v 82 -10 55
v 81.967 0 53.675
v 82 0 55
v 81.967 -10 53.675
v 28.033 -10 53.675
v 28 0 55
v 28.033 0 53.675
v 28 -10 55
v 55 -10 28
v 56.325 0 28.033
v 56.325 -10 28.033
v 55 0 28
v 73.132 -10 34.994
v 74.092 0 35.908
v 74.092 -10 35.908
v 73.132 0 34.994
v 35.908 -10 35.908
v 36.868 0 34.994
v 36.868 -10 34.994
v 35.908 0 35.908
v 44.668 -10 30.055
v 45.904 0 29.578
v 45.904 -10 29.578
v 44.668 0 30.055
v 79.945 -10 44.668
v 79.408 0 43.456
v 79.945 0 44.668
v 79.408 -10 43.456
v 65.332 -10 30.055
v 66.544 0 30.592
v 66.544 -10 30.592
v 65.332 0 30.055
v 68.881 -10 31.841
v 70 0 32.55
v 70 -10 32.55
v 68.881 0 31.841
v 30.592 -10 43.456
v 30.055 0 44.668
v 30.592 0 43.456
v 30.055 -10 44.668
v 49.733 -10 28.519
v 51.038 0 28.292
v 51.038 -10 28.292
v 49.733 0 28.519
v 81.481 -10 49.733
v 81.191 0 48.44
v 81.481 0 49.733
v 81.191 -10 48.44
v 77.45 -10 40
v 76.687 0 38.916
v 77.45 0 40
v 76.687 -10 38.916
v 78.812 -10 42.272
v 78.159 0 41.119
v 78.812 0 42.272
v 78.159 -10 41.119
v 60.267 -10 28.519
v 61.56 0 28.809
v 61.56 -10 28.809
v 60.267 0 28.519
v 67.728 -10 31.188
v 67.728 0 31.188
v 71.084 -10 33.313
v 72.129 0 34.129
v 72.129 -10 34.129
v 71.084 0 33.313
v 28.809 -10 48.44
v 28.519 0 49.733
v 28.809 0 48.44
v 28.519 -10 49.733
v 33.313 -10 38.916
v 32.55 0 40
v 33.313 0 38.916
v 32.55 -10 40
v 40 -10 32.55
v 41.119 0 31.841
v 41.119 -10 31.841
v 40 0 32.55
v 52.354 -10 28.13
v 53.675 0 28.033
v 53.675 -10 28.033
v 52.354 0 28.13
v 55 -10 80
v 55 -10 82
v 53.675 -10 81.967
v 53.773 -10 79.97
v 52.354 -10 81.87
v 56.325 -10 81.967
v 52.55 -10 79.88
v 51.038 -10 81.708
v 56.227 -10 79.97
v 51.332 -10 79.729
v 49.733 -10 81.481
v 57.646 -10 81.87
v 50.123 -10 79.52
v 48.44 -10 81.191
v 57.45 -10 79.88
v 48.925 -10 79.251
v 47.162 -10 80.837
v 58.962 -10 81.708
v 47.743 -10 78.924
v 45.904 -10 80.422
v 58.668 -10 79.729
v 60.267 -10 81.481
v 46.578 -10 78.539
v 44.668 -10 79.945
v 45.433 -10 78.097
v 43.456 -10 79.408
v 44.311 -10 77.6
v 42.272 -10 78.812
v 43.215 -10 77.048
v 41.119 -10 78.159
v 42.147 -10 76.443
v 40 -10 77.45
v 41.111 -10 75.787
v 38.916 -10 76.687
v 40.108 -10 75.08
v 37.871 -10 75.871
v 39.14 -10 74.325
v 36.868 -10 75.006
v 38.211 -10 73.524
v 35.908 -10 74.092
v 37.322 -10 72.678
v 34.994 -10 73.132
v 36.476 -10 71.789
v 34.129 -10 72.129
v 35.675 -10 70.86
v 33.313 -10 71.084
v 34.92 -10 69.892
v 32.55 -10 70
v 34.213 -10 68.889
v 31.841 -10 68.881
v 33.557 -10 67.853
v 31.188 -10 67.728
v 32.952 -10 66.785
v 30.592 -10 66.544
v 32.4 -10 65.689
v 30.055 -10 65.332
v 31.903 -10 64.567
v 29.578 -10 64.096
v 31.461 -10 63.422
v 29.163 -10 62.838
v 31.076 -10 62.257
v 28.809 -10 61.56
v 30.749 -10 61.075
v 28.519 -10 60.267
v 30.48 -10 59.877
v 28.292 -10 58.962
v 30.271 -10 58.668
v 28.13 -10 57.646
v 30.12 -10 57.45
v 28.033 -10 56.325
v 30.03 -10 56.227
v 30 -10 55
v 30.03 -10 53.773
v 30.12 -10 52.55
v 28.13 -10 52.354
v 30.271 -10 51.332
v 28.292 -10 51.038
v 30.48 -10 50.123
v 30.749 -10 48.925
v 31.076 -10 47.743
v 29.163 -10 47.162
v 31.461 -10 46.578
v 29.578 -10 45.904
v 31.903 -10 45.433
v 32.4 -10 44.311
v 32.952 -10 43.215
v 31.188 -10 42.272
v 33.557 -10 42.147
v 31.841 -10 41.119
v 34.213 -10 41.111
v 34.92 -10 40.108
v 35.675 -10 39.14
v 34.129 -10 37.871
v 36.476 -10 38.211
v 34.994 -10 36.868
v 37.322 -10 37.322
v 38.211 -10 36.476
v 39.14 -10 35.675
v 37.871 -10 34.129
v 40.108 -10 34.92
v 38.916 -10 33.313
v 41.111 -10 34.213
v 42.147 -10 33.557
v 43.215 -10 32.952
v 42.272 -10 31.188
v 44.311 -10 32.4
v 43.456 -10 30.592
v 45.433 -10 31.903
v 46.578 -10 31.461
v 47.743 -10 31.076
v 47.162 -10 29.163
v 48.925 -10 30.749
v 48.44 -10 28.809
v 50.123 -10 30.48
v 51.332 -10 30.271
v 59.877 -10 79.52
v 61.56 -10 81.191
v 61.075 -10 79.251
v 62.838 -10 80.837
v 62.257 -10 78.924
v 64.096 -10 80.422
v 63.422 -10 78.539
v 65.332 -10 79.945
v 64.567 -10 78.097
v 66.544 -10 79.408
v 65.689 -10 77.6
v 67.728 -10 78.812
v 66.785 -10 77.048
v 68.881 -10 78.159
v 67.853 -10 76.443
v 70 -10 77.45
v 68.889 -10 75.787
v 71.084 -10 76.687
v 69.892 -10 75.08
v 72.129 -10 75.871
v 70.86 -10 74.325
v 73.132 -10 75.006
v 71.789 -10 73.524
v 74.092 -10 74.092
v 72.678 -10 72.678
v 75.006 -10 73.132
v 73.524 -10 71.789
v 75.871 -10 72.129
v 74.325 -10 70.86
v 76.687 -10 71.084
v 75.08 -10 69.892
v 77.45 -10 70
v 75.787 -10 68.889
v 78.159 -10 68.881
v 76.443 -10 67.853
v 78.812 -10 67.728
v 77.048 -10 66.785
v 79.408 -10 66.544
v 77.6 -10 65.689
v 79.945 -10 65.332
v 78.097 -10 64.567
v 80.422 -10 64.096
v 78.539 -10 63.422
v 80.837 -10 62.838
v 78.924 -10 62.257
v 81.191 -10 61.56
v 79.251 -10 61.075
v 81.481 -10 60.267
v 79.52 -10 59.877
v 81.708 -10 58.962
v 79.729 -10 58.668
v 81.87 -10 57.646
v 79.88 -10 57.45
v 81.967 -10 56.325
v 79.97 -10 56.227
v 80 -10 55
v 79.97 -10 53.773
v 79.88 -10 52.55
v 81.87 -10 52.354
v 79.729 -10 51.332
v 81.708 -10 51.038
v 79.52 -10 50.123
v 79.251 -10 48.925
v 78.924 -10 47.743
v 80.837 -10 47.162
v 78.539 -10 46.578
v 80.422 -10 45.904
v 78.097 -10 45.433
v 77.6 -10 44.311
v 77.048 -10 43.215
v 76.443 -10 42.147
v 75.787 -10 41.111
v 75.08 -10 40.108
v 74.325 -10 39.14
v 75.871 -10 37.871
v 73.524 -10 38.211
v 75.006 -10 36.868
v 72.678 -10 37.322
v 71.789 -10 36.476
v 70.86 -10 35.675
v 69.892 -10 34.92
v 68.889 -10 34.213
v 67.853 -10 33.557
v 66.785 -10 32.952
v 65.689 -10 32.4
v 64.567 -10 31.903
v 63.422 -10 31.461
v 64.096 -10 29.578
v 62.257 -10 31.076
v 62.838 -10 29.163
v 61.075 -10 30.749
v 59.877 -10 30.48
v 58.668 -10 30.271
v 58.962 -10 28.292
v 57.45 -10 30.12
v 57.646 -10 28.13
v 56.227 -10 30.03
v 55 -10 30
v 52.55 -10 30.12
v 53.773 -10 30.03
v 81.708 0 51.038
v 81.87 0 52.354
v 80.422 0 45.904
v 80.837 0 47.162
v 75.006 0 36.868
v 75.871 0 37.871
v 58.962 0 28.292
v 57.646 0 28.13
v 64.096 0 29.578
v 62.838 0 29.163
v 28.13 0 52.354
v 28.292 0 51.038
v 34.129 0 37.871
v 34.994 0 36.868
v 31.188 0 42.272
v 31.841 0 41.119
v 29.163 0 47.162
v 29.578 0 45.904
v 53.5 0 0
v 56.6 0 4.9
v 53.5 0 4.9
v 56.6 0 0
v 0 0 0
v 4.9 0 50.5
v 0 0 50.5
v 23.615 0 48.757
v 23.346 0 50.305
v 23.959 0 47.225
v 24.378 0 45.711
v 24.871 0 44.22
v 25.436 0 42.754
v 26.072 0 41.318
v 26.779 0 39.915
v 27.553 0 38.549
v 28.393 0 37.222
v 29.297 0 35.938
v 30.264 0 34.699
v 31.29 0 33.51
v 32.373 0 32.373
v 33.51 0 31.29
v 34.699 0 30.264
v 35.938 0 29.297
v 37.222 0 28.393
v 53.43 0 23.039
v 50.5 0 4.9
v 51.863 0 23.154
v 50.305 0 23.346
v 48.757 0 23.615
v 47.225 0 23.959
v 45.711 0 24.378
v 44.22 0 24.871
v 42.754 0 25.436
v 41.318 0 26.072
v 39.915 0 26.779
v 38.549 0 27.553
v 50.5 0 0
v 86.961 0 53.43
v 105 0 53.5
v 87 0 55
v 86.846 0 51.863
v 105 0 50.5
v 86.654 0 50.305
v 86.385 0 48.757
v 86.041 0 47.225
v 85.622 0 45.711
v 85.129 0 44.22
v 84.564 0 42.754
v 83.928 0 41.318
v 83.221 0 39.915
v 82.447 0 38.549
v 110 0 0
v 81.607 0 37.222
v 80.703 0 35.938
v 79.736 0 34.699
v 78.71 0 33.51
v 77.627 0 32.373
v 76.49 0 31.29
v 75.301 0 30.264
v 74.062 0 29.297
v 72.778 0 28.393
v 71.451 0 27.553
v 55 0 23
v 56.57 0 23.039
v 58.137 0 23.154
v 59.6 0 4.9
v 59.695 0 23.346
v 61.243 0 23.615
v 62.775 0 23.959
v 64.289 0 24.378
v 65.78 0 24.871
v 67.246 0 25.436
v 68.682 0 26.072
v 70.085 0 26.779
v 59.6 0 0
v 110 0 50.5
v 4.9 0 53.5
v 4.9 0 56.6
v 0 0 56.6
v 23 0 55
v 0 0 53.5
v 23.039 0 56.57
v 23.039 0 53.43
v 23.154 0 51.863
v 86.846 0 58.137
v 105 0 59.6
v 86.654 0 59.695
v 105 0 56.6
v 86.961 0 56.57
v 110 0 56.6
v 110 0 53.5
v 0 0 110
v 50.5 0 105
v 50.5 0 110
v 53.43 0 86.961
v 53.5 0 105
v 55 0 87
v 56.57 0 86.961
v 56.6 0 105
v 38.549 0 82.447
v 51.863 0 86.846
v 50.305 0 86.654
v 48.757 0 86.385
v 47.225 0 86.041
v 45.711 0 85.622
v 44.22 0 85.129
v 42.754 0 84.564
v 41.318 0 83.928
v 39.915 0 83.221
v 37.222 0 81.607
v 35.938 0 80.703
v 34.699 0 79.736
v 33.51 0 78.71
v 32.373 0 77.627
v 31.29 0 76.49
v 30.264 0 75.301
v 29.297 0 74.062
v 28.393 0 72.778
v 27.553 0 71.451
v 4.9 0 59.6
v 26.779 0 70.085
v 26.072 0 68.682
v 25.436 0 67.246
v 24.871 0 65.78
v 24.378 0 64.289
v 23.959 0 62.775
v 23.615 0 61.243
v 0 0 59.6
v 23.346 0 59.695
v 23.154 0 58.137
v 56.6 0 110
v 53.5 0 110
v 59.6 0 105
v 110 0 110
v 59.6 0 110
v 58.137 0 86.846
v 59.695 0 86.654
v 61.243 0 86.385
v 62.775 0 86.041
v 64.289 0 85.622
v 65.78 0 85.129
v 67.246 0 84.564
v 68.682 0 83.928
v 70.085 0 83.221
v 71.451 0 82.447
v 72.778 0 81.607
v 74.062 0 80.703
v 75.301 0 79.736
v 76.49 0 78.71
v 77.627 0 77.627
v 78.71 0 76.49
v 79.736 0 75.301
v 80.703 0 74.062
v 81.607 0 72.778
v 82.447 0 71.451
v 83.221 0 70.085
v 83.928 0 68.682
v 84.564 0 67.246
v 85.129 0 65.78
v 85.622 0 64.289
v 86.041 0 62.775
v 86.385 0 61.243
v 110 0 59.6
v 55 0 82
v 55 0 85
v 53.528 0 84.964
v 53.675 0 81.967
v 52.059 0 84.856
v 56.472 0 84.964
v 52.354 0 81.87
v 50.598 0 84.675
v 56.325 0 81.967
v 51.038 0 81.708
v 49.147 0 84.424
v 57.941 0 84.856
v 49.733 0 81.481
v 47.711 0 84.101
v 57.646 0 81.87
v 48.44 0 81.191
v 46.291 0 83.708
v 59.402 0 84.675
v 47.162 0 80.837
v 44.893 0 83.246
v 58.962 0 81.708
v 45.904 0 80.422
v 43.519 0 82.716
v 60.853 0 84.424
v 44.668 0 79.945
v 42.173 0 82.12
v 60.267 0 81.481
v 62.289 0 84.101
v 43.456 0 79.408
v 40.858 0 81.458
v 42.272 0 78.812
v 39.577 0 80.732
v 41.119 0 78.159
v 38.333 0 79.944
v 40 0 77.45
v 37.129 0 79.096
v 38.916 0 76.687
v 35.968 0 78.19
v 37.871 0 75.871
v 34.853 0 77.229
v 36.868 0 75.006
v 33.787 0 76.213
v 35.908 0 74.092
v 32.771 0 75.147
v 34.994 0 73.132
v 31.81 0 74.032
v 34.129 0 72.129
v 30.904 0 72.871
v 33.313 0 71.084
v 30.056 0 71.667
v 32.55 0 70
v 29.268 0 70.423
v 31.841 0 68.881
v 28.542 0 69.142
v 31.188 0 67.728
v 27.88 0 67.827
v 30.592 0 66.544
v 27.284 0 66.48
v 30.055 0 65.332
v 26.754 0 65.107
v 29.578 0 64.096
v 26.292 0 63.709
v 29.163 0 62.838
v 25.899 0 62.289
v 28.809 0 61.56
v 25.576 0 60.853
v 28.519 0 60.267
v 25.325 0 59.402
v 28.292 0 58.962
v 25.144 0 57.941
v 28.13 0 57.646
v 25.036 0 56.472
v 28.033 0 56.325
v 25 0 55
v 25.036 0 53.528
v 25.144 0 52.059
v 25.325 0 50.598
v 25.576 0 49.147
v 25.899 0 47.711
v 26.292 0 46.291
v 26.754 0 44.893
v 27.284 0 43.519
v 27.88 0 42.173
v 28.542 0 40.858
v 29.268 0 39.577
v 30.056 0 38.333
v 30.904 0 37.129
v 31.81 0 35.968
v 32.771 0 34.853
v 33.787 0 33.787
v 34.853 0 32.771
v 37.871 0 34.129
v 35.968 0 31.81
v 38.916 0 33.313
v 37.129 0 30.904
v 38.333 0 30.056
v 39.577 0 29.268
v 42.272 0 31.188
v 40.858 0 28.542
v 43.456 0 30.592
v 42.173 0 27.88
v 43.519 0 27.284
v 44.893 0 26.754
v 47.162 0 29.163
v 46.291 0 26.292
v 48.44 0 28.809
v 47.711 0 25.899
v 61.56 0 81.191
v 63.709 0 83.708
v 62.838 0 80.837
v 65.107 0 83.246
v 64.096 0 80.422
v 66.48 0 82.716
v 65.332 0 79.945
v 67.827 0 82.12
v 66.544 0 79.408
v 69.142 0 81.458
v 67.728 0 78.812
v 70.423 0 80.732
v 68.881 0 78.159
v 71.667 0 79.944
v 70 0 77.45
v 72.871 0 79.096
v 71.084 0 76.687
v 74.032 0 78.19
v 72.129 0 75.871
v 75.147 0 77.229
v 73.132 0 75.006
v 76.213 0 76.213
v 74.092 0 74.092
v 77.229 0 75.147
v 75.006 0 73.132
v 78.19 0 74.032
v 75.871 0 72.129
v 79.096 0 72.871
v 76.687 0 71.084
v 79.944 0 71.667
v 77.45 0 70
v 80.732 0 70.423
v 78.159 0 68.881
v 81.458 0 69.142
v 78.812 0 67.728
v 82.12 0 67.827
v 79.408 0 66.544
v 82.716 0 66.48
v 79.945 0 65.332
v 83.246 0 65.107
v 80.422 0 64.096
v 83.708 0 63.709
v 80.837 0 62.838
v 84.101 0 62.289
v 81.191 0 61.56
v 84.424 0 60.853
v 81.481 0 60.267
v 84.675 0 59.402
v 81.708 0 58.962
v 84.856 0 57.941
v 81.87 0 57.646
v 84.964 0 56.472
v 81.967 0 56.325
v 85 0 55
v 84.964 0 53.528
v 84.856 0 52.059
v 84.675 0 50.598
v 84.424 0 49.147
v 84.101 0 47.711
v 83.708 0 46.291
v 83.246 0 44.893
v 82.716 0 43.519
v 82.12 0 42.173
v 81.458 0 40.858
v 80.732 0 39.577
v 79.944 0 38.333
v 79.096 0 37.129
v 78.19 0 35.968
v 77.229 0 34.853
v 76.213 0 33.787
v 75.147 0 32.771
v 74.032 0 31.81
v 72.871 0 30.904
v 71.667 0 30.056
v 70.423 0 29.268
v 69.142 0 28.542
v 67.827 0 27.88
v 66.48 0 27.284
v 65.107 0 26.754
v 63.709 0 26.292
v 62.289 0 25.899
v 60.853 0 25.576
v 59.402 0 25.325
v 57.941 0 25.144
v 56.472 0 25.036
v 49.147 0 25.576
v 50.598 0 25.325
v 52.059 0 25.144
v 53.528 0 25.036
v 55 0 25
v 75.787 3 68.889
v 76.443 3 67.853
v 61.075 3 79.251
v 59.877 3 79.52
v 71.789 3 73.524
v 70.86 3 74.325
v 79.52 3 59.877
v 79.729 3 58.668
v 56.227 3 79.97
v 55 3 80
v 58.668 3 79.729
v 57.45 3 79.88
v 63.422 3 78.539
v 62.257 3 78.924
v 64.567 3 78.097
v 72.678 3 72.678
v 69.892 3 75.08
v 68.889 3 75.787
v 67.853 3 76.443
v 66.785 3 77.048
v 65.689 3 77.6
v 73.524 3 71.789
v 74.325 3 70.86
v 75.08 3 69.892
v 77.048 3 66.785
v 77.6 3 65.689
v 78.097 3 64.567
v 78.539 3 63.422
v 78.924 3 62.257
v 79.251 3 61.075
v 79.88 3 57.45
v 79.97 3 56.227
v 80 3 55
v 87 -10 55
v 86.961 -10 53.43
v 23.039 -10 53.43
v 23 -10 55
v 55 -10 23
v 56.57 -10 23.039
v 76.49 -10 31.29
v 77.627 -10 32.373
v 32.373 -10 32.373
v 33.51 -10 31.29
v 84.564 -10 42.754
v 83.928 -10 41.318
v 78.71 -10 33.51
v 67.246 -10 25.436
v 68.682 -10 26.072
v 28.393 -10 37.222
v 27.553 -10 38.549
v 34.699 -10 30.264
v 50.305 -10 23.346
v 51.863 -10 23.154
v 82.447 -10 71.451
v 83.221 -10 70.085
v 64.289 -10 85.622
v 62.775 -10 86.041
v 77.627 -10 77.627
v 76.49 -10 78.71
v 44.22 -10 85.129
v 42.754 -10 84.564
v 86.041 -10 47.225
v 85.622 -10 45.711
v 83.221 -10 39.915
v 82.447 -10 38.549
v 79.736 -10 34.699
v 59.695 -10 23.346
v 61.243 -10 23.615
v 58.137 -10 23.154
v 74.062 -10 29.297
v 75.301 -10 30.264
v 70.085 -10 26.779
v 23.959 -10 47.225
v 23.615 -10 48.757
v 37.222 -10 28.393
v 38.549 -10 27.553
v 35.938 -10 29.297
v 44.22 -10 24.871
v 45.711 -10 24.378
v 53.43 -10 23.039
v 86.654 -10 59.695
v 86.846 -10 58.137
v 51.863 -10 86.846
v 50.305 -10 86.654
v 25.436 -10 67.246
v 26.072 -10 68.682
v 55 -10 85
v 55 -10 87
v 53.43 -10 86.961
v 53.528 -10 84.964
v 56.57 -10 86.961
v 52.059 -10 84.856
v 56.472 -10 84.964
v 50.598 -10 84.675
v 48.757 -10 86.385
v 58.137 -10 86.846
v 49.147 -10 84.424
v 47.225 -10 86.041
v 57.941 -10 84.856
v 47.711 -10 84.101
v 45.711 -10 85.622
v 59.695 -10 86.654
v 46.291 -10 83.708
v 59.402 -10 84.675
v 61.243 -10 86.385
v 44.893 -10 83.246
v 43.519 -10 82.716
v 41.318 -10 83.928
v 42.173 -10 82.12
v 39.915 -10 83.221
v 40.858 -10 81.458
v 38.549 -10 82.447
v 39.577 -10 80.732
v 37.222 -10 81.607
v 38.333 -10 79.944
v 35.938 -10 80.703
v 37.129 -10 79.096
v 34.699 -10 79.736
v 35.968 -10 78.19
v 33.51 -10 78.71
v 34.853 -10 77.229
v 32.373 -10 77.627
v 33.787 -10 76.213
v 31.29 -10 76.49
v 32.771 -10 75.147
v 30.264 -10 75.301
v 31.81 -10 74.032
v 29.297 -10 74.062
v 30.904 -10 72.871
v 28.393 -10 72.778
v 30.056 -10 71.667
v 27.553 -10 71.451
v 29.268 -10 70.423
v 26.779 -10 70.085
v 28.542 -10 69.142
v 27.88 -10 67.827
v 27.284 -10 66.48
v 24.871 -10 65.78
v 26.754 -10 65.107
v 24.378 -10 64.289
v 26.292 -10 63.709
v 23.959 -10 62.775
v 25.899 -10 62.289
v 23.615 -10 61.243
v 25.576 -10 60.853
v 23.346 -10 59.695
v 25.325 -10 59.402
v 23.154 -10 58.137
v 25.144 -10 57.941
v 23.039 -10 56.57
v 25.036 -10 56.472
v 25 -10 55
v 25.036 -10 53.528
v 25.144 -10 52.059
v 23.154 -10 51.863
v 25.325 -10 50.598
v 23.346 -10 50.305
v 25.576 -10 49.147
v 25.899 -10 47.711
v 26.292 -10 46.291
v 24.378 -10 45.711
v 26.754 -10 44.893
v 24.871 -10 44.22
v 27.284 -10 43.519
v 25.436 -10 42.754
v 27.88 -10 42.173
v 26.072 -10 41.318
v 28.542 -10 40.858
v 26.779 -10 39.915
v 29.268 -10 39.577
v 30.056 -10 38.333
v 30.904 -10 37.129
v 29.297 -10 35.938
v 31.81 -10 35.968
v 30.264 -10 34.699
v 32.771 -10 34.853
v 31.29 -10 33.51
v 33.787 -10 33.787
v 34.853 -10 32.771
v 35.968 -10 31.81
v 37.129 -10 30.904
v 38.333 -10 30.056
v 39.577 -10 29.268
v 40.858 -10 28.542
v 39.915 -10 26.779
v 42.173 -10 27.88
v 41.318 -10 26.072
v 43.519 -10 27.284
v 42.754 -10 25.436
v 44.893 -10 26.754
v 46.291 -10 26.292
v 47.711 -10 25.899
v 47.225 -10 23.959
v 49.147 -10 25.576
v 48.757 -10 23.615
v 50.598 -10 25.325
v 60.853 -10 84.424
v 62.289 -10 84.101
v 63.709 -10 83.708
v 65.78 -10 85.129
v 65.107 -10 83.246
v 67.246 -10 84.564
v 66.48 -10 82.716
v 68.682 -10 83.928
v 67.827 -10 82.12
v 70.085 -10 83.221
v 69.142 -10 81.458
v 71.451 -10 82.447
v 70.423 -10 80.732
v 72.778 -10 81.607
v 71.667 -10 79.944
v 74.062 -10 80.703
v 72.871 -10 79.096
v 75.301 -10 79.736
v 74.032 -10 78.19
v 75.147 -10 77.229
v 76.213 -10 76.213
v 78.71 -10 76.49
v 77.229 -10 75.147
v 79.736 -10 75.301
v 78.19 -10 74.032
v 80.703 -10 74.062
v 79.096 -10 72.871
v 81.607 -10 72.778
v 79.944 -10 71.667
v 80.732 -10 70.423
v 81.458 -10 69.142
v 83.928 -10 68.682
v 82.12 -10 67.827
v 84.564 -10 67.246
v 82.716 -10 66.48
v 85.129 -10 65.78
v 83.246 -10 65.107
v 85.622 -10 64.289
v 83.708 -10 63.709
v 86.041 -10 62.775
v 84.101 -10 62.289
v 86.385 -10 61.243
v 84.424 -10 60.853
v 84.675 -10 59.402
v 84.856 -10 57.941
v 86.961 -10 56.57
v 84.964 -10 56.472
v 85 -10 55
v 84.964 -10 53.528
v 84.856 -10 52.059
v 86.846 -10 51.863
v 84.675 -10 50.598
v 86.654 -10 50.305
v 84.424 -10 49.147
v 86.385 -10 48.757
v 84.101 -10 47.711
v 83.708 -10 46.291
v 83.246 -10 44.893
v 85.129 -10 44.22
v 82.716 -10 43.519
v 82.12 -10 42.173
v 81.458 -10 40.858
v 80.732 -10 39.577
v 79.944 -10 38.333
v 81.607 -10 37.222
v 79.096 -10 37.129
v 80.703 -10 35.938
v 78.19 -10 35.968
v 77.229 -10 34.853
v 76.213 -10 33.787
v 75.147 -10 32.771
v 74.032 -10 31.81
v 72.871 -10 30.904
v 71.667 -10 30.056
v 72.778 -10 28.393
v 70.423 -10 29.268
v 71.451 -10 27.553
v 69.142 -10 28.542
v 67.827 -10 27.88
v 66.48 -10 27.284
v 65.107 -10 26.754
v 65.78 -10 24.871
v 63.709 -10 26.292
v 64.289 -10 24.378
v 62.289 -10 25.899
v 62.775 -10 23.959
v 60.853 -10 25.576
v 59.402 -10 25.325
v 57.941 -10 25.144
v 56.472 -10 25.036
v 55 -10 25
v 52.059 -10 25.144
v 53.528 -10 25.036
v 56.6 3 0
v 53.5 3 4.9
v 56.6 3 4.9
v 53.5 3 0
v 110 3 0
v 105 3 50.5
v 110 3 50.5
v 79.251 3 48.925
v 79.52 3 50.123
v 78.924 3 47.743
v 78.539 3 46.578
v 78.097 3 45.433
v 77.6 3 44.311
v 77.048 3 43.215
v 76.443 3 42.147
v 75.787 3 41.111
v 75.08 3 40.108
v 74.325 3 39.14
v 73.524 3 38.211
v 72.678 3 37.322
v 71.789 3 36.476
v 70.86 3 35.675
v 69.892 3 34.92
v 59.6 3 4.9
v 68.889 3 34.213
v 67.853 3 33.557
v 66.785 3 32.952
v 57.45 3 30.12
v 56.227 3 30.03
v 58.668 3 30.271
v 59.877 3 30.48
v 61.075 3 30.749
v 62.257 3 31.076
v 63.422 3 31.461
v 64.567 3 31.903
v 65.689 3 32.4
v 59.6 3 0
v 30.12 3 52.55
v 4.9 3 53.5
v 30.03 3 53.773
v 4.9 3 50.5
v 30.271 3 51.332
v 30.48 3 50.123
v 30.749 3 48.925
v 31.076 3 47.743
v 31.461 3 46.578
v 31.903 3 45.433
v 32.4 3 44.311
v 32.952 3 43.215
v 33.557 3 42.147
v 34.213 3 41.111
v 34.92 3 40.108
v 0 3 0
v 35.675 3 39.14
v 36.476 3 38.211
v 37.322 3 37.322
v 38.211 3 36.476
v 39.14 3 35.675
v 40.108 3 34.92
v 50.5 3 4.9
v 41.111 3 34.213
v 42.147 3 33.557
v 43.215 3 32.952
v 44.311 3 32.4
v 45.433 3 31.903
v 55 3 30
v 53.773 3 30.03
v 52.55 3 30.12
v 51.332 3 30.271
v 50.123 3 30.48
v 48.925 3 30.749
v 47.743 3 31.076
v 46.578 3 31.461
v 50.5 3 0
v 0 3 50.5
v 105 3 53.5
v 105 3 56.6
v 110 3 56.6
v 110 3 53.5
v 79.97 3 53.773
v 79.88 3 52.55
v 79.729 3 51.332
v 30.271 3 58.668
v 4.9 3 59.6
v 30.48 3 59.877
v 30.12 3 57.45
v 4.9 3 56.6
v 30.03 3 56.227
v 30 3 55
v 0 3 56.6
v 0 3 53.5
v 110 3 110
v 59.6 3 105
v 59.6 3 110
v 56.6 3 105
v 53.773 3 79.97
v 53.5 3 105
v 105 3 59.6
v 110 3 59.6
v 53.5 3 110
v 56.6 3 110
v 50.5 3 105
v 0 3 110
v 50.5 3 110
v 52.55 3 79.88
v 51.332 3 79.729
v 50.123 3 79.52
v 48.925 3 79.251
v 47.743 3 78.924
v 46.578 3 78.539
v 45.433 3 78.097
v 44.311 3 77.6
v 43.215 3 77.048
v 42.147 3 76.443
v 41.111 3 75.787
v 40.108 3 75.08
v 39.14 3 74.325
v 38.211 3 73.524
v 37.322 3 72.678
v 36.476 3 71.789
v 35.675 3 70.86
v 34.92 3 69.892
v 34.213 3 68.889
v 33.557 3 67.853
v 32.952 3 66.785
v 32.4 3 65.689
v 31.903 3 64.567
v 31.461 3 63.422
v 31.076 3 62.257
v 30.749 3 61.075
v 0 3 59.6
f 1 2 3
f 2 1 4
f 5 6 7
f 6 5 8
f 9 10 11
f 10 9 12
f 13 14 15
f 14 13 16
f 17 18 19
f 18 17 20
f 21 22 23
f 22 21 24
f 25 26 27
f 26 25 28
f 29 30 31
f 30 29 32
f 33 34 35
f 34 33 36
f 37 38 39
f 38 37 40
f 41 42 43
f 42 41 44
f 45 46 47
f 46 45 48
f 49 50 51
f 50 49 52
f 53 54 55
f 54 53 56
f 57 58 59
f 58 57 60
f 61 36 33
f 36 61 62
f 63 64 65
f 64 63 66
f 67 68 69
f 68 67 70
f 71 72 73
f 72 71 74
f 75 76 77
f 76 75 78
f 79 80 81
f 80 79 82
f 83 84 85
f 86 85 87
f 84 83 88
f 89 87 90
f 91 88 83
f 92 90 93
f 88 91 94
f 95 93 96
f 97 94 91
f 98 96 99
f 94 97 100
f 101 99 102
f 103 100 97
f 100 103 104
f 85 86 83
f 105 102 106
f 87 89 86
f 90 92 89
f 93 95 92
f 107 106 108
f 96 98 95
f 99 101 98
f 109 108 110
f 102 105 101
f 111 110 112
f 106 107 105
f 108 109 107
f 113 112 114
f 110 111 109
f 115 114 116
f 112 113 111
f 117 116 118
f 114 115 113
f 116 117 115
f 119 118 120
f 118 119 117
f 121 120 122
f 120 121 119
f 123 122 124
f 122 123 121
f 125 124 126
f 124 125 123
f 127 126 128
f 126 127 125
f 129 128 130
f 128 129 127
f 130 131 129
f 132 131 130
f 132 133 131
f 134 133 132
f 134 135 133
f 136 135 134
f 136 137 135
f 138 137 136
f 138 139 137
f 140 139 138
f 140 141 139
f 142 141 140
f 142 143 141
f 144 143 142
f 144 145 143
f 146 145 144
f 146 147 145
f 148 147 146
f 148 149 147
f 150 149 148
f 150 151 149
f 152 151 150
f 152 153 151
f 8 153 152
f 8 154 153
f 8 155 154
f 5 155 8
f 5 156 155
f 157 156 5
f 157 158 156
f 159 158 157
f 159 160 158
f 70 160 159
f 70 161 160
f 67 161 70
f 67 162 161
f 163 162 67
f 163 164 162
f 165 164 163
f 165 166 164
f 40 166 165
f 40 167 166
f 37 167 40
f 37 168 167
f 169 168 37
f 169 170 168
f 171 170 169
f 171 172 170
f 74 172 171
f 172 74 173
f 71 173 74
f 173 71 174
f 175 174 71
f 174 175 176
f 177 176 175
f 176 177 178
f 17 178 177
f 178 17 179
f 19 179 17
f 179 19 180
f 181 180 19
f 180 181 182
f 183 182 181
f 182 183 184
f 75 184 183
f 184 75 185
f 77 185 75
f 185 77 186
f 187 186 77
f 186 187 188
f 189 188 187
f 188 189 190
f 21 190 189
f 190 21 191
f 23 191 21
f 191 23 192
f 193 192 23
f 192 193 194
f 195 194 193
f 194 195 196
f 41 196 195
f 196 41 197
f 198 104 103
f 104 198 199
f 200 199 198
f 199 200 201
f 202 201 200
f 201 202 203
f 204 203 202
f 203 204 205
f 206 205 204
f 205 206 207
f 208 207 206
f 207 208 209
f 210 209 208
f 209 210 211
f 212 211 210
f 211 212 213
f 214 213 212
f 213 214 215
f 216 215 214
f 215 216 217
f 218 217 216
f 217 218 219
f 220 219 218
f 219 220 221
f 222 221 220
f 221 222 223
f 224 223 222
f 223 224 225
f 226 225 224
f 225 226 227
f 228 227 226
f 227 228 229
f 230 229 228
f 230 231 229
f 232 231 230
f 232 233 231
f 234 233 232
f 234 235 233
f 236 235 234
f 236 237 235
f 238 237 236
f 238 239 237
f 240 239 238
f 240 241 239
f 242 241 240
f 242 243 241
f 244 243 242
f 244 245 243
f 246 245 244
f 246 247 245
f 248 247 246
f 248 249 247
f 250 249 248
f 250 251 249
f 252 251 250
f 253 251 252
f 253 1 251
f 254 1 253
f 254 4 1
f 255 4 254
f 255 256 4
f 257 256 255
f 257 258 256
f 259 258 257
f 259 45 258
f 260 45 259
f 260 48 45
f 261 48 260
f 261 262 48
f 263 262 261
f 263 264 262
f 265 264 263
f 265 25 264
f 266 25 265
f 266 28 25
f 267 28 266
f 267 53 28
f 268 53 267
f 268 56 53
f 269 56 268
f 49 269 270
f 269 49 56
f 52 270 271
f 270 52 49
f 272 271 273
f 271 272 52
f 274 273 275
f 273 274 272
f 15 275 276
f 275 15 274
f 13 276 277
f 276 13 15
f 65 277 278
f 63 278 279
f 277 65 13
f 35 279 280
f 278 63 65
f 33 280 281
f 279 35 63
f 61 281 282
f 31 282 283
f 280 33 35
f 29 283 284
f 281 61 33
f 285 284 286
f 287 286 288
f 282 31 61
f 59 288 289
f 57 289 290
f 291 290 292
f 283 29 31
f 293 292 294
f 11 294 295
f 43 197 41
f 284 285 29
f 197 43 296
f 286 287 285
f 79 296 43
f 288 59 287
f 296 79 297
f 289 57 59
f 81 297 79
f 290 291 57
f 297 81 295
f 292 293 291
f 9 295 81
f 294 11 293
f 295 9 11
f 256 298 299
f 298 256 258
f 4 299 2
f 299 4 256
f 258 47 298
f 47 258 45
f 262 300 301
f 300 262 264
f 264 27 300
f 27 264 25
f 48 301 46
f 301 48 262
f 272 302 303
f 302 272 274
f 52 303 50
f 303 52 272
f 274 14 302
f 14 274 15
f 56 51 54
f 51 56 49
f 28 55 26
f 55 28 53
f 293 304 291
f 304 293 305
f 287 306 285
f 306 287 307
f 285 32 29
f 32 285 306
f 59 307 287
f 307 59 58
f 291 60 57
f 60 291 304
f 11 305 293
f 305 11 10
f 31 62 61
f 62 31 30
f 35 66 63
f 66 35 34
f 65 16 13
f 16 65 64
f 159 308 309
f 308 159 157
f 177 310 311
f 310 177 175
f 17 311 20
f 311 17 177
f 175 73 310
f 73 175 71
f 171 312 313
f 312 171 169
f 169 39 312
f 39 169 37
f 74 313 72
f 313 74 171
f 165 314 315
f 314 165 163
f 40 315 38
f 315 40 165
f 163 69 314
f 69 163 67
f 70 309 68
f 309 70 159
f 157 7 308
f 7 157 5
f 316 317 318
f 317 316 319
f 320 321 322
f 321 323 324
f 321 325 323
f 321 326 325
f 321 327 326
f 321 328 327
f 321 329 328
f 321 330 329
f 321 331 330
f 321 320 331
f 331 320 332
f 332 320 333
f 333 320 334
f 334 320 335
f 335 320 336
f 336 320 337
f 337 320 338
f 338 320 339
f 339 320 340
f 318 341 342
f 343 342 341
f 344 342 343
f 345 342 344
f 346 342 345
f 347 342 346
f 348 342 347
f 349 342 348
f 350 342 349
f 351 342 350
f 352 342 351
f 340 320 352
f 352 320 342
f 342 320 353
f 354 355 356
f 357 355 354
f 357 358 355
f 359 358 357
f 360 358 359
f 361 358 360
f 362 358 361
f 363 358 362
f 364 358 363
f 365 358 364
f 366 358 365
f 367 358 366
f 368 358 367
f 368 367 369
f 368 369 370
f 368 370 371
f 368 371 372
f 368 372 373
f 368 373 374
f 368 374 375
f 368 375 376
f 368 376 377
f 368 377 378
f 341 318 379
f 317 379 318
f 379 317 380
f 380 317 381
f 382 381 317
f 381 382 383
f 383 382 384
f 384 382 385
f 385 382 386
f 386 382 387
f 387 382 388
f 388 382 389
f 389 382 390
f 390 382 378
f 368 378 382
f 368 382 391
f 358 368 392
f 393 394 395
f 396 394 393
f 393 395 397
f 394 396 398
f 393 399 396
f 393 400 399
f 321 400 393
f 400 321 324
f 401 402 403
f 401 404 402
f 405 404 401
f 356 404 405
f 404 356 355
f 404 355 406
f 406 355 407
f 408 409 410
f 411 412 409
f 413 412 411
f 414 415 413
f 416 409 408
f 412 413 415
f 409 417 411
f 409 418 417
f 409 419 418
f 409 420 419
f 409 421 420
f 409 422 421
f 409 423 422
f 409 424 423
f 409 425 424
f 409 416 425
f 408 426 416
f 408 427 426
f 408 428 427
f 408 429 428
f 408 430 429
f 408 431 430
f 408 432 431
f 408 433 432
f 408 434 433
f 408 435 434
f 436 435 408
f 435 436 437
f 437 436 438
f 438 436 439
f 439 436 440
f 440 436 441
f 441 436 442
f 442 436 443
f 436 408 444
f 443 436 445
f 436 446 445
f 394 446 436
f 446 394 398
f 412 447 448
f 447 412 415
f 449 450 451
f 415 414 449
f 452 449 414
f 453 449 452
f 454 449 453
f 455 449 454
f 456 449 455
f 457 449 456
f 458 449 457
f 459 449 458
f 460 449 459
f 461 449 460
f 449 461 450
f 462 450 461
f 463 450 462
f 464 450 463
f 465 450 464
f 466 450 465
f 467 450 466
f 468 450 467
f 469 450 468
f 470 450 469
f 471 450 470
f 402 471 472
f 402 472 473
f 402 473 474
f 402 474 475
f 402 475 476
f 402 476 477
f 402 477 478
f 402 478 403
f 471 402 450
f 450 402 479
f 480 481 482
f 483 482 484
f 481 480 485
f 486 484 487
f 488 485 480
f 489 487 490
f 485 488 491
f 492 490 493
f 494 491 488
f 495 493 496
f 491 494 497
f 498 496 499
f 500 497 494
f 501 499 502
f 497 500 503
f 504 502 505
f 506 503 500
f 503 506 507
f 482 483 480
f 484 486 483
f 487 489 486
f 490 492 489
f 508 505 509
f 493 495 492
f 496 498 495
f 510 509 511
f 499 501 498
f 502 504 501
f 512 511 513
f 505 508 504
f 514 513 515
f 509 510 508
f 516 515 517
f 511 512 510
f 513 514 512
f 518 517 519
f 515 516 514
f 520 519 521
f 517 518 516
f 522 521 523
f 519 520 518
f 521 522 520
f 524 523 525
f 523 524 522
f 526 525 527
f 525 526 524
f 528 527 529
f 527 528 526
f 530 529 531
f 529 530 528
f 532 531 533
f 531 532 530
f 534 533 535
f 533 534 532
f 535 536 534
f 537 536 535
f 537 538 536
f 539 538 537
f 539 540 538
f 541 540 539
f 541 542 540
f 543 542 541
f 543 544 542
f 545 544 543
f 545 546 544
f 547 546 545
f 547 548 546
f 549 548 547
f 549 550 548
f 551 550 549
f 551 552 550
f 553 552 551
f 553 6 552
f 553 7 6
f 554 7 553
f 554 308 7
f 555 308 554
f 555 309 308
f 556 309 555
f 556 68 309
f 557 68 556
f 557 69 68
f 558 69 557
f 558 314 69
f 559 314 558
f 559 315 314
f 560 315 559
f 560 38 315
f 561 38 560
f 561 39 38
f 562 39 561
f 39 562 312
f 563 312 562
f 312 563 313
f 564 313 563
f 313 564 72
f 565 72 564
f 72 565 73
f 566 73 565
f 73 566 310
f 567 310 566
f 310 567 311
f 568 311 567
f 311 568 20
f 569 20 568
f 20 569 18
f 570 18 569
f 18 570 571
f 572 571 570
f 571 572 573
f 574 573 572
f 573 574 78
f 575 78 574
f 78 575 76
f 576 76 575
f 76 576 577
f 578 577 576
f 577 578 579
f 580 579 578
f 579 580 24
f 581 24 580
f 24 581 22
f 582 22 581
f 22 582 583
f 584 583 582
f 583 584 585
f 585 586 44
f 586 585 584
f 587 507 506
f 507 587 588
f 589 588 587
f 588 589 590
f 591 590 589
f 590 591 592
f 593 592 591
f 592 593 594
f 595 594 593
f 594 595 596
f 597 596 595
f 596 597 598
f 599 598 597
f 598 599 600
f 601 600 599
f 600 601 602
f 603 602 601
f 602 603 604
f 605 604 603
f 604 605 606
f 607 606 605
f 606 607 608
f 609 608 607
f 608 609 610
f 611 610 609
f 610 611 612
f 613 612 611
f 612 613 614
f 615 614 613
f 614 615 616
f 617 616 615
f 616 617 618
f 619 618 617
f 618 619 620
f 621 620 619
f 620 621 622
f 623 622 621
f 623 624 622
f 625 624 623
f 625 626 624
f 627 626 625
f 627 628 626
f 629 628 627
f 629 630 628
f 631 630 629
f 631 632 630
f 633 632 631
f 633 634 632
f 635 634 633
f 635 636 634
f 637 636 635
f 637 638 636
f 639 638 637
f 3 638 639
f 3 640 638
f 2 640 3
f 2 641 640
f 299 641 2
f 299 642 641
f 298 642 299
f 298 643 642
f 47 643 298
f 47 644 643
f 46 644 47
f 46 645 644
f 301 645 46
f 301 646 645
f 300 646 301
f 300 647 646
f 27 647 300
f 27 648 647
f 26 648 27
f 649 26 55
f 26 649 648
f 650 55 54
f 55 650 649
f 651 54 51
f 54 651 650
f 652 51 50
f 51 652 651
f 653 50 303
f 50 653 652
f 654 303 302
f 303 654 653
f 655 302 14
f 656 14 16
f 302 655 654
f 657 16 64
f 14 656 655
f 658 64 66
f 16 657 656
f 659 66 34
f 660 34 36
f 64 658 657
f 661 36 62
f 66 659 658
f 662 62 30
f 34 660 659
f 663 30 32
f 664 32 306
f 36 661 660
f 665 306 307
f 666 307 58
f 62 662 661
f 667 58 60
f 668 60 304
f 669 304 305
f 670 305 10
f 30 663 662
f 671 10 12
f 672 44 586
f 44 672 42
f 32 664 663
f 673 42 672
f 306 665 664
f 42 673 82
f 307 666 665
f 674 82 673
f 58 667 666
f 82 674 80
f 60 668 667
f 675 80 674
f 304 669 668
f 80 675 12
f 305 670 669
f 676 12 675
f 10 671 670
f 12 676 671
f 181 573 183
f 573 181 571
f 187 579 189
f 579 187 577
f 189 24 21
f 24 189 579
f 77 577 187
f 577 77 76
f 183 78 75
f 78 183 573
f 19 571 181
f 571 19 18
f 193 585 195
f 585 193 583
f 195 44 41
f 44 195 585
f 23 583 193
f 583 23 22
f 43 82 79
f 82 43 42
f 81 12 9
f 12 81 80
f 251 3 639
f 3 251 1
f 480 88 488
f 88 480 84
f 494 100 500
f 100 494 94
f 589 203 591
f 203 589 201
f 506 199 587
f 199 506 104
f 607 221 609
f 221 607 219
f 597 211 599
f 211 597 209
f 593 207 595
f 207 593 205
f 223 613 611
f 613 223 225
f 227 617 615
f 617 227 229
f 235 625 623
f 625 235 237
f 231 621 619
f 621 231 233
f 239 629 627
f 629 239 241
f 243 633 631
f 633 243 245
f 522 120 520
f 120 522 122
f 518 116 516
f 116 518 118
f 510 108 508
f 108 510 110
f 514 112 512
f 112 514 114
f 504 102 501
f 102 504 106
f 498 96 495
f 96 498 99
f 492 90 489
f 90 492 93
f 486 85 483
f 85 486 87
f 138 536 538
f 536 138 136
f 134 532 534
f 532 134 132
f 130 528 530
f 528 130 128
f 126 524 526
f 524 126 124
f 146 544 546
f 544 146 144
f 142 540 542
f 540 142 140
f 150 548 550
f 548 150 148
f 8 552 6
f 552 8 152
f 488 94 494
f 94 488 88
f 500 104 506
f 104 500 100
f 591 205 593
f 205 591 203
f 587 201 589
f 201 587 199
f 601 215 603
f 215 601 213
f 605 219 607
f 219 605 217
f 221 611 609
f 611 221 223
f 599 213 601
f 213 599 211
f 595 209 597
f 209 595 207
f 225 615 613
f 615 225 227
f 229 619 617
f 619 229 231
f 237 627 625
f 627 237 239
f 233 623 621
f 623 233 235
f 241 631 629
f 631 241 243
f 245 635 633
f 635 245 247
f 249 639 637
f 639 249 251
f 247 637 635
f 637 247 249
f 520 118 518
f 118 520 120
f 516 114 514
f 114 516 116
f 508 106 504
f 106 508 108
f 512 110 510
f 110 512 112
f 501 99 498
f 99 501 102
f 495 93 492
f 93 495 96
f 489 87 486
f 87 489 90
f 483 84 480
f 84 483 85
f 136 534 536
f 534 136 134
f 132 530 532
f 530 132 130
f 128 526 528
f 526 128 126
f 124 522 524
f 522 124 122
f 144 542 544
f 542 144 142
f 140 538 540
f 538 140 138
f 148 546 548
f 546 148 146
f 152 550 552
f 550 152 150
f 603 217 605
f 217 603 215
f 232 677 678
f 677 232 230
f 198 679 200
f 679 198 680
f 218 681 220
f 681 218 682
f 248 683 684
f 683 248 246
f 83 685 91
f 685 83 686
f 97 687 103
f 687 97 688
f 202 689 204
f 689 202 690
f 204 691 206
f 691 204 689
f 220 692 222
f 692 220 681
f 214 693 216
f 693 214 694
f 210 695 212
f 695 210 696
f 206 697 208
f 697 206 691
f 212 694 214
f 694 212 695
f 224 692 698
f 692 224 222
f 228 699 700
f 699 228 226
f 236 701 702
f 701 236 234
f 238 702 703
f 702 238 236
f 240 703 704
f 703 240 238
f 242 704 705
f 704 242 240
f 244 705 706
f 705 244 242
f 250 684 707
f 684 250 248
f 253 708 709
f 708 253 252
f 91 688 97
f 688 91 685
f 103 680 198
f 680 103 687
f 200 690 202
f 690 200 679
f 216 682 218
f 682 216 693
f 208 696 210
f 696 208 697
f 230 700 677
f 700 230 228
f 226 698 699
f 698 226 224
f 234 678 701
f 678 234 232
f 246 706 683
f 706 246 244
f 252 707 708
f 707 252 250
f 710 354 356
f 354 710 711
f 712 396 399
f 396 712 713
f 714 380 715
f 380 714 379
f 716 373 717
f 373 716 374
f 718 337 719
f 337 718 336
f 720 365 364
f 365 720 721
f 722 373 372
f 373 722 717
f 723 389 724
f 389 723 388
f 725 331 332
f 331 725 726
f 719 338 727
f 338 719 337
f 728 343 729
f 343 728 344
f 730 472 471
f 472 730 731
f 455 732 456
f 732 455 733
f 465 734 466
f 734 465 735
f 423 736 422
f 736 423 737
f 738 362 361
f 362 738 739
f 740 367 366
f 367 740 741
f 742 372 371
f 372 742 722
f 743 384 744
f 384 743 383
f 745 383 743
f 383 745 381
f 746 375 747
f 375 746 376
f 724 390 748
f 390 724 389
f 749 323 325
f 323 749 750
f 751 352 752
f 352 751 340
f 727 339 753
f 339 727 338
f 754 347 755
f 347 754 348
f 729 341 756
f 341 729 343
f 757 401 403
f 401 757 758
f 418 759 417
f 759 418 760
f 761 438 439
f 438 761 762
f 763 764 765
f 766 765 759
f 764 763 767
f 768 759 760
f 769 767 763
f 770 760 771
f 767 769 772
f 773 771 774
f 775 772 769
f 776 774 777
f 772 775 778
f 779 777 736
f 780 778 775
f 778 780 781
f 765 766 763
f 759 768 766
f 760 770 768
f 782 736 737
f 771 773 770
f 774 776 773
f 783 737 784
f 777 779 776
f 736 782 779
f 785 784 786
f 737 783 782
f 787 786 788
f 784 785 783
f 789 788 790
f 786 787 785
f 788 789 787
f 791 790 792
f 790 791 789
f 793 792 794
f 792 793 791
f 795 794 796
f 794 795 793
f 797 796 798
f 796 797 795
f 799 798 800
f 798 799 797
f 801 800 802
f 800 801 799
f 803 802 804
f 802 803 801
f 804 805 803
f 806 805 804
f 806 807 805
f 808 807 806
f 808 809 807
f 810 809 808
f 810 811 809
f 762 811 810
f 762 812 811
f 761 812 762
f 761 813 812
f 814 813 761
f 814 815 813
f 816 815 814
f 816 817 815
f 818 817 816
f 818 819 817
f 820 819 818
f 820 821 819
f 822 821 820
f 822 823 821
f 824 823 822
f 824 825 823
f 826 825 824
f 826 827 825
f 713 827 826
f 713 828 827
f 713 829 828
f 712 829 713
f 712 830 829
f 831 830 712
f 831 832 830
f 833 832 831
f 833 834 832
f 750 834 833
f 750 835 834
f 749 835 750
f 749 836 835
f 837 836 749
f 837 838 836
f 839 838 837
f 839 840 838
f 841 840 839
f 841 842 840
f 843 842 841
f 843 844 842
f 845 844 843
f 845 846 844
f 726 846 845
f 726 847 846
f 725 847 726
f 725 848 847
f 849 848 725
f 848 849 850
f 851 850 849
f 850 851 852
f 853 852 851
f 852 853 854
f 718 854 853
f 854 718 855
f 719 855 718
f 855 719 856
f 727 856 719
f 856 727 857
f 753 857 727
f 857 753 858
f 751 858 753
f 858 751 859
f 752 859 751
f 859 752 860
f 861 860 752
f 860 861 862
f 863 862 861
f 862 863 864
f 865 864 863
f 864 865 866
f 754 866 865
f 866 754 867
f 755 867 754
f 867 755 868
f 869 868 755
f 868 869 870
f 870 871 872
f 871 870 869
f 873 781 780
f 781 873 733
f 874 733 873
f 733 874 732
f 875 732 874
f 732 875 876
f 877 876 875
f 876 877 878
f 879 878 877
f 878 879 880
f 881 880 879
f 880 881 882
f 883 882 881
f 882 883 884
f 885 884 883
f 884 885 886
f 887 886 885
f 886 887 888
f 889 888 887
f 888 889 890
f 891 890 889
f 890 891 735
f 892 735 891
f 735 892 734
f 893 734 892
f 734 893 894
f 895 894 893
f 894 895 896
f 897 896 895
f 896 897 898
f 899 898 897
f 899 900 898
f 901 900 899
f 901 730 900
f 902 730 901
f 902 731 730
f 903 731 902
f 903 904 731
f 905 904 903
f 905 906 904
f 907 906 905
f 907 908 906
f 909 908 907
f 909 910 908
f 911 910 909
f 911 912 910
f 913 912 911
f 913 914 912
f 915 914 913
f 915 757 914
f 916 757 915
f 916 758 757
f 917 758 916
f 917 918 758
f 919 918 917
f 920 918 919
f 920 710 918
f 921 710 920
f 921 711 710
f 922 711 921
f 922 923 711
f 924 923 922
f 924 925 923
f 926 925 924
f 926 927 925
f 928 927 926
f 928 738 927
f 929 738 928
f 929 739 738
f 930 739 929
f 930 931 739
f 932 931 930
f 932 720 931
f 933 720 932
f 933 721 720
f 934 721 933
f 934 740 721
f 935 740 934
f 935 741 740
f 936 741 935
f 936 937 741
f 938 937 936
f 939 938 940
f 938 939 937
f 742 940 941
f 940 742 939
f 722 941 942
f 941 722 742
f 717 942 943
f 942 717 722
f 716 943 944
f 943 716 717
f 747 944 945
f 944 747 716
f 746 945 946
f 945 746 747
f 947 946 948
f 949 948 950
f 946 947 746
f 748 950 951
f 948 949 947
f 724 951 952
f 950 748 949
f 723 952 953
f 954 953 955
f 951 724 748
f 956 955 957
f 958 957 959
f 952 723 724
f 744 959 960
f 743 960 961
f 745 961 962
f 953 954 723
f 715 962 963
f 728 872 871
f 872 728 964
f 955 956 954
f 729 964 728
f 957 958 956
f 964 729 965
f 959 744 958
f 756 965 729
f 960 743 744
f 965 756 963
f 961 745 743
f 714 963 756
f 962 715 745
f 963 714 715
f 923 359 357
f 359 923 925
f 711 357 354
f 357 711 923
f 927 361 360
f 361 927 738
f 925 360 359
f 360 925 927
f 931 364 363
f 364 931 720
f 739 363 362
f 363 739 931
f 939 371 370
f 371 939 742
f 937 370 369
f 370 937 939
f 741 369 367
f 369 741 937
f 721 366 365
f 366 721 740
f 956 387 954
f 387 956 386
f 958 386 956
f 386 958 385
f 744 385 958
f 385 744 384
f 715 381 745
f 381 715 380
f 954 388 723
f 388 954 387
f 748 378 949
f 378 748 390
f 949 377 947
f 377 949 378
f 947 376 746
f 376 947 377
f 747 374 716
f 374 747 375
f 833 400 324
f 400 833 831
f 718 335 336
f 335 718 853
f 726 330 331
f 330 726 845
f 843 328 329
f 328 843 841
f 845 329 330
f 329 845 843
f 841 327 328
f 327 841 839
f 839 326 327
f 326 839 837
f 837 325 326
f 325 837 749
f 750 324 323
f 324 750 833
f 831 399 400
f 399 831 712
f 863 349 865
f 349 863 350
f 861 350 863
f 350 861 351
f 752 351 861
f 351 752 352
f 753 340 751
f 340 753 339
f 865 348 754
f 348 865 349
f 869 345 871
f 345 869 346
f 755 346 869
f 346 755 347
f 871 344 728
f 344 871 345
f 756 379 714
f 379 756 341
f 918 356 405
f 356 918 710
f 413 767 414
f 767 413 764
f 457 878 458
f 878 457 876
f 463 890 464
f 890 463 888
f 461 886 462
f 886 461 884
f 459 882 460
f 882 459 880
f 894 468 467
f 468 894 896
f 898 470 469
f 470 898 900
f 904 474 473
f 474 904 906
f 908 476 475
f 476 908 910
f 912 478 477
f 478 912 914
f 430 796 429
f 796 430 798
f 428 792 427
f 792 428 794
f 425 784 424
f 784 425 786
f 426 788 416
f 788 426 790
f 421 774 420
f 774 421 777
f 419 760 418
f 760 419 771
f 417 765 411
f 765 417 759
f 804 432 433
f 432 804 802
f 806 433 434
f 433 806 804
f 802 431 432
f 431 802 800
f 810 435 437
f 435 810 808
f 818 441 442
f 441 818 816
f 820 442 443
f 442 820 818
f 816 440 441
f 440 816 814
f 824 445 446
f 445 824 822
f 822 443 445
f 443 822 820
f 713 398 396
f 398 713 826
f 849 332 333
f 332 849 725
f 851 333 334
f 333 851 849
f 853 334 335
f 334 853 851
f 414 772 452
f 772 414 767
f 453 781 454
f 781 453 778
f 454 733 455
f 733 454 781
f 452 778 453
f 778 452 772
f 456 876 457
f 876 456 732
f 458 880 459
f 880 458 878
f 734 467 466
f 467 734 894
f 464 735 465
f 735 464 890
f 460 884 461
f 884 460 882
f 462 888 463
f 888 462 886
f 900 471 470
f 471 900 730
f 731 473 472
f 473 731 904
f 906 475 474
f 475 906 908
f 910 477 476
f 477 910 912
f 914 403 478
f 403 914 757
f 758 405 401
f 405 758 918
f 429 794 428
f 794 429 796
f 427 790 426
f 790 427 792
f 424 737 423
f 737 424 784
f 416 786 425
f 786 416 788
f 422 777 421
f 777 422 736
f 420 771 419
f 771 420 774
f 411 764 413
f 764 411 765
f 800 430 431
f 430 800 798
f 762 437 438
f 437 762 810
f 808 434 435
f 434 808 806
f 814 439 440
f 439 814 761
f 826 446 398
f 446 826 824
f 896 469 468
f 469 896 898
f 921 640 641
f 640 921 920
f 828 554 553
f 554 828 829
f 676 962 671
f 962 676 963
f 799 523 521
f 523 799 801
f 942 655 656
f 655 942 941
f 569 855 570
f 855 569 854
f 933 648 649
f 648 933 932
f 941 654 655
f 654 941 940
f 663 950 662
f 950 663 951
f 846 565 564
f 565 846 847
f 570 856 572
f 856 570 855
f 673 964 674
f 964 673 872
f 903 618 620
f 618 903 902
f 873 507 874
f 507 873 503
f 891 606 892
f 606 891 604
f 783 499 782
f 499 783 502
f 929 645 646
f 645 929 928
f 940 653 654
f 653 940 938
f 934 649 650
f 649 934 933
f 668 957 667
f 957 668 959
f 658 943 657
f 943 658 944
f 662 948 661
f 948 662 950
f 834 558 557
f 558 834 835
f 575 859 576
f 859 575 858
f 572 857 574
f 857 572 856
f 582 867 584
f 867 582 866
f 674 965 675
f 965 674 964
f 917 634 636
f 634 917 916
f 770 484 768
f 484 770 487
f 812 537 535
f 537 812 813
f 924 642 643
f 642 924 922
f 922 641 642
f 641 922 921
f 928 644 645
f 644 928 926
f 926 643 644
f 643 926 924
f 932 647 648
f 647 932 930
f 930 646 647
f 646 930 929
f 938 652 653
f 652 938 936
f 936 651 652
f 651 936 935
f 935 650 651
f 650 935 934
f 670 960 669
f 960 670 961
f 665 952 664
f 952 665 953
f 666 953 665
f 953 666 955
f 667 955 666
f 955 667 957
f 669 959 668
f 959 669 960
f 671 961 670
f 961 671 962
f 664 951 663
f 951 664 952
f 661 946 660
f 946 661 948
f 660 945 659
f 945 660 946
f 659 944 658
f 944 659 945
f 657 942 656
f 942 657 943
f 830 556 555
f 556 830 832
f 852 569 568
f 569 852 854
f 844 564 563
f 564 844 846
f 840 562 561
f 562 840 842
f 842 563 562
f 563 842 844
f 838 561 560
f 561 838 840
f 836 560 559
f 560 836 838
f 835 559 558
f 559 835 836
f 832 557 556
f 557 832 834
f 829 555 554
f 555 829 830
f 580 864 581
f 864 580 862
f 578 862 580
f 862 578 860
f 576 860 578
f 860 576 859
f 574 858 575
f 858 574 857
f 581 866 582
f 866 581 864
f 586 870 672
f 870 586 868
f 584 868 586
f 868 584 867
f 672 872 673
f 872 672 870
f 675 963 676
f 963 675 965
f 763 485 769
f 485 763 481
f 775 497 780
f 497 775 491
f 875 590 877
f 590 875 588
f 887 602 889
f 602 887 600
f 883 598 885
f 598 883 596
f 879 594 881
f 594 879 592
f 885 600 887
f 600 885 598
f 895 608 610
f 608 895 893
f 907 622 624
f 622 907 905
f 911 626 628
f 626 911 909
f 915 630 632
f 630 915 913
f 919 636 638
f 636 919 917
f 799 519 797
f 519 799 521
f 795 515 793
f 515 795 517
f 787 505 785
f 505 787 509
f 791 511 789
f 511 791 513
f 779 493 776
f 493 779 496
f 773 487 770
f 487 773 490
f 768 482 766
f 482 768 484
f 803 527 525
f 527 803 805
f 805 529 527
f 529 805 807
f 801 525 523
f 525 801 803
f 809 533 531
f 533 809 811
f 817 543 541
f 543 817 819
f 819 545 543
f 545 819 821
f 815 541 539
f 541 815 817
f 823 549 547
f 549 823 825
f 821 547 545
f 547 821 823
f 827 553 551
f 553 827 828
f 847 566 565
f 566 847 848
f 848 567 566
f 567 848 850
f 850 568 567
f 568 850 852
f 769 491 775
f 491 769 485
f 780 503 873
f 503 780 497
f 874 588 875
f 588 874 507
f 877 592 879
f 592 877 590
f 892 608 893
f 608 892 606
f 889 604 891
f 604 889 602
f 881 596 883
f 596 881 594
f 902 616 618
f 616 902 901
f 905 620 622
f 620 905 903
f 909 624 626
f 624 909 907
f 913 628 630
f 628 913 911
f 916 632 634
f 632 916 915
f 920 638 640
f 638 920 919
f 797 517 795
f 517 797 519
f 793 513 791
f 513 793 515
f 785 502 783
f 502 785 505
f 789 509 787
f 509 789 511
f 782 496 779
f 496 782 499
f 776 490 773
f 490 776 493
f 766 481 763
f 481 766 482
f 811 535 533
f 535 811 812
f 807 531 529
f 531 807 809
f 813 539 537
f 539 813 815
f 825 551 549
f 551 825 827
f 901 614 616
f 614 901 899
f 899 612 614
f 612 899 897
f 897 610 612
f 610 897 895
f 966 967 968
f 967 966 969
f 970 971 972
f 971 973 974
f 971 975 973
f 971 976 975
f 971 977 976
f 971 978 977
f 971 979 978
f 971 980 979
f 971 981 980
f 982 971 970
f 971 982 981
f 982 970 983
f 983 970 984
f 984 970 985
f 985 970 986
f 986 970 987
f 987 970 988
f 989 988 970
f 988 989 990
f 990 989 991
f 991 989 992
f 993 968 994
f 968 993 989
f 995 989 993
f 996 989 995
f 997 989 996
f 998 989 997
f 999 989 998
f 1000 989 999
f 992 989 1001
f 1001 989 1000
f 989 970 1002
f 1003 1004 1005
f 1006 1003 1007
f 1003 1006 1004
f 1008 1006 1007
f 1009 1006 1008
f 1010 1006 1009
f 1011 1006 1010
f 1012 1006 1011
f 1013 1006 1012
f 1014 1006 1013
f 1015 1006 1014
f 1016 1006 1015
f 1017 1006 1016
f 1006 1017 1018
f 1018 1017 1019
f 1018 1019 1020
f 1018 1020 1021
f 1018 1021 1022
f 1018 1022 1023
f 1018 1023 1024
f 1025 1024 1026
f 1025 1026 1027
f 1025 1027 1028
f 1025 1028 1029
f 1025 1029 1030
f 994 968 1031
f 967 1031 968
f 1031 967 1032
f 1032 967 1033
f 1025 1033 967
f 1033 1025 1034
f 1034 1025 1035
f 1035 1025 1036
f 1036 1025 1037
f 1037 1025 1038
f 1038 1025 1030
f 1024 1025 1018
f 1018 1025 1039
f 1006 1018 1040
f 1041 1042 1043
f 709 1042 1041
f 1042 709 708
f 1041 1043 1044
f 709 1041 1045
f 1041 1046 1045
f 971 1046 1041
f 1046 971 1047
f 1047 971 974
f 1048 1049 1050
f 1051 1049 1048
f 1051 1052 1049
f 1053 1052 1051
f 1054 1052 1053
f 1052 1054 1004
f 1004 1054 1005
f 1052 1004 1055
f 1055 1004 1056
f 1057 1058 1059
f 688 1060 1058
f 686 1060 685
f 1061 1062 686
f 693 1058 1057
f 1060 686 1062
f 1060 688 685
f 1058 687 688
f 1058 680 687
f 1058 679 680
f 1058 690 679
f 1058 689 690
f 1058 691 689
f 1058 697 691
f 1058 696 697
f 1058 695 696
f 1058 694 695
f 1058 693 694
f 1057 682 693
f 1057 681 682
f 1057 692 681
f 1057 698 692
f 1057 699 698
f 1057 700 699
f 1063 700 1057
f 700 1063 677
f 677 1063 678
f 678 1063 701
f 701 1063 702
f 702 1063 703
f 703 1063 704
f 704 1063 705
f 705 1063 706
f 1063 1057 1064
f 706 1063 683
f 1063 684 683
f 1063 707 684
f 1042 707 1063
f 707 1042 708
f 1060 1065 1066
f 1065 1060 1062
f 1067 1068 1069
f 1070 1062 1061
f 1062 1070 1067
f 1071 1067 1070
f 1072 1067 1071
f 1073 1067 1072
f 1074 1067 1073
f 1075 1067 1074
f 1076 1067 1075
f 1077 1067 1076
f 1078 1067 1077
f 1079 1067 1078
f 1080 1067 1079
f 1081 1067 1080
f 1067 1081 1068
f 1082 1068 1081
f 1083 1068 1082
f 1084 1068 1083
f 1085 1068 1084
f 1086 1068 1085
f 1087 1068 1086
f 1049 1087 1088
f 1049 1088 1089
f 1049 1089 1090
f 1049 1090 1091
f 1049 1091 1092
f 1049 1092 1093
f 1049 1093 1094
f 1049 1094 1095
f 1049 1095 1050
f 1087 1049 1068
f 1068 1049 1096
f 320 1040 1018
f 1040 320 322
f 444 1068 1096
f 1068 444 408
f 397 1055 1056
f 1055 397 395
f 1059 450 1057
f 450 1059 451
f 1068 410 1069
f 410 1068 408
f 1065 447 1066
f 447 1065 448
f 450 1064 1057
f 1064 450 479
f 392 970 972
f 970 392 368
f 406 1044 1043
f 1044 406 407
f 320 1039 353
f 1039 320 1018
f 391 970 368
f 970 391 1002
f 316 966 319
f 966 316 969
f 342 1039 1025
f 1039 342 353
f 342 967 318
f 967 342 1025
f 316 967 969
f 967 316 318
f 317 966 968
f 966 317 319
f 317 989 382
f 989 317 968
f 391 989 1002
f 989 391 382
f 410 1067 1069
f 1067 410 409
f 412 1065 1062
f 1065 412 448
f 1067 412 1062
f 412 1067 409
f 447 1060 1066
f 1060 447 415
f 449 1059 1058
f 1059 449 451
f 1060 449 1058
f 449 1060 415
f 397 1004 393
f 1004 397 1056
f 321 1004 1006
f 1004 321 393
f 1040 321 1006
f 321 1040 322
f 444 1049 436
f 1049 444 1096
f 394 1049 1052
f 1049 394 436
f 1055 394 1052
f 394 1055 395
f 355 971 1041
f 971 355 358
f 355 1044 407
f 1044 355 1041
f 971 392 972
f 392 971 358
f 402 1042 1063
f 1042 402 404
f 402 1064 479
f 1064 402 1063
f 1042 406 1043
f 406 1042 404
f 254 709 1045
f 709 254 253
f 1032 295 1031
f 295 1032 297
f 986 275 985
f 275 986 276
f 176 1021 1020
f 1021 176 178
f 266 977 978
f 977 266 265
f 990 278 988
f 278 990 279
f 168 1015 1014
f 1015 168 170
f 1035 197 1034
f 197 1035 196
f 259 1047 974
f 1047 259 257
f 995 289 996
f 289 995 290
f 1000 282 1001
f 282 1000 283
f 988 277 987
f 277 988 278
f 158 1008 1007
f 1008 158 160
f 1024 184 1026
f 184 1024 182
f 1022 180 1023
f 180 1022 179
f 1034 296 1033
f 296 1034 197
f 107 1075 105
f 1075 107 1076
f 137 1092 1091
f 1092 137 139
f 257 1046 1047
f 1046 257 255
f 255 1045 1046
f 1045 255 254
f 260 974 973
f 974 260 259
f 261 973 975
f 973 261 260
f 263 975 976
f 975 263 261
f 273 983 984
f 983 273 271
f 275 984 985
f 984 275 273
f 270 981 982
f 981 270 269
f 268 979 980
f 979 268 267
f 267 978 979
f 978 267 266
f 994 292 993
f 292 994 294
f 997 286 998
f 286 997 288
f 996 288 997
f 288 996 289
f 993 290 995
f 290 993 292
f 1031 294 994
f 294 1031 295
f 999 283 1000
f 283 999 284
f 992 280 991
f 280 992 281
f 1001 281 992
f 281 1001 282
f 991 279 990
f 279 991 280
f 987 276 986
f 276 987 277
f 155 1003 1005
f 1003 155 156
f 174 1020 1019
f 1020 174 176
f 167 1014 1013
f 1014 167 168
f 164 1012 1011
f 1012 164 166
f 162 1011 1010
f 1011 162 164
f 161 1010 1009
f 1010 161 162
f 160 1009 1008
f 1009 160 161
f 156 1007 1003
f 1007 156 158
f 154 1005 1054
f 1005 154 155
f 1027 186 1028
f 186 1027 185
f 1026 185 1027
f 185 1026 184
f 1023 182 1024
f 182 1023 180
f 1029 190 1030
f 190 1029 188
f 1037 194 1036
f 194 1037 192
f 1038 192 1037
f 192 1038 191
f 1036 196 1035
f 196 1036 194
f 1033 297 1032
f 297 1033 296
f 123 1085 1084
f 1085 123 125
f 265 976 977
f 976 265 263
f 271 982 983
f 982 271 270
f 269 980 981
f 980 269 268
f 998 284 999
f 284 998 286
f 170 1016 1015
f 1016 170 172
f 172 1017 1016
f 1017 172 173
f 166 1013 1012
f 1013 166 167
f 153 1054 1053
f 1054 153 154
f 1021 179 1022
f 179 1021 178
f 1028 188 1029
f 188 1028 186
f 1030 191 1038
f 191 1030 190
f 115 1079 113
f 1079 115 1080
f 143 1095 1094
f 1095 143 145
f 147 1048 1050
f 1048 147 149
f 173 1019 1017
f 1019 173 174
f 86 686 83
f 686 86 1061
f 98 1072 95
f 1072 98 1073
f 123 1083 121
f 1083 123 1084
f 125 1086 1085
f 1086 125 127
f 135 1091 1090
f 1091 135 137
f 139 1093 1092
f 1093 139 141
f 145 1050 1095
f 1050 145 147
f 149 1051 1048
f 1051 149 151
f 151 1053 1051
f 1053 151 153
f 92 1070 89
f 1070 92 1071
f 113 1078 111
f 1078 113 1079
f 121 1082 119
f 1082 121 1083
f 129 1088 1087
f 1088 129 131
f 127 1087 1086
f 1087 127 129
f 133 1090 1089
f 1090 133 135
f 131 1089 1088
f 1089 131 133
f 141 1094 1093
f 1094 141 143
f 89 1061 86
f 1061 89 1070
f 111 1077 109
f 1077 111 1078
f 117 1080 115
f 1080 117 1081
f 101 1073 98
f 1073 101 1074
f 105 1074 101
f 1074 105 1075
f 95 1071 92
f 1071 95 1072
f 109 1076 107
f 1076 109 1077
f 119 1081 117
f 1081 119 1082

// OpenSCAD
// ============================================================
// Hamster Habitat — Tunel Paneli
// 110x3x110mm panel + on yuzde tunel_baglanti tek kol (10mm)
// Tunel (outer r=25) kola tam oturur, arka yuz duz
// ============================================================
$fn = 128;

module panel_tunel() {
  color("lightyellow", 0.9)
  difference() {
    union() {
      // panel govdesi
      cube([110, 3, 110]);
      // tek kol — on yuzden 10mm cikiyor
      translate([55, -10, 55]) rotate([-90, 0, 0]) {
        difference() { cylinder(r=27,h=10); cylinder(r=25,h=11); }  // ic kol
        difference() { cylinder(r=32,h=10); cylinder(r=30,h=11); }  // dis kol
        translate([0,0,10]) difference() { cylinder(r=32,h=3); cylinder(r=25,h=4); }  // orta halka
      }
    }
    // 4 kenar — 2x notch
    // 4 kenar — ikili notch kumesi (3mm aralik, merkez 55mm)
    translate([50.5, -0.1,  -0.1]) cube([3, 3.2, 5]);   // alt 1
    translate([56.6, -0.1,  -0.1]) cube([3, 3.2, 5]);   // alt 2
    translate([50.5, -0.1,   105]) cube([3, 3.2, 5]);   // ust 1
    translate([56.6, -0.1,   105]) cube([3, 3.2, 5]);   // ust 2
    translate([ -0.1, -0.1, 50.5]) cube([5, 3.2, 3]);   // sol 1
    translate([ -0.1, -0.1, 56.6]) cube([5, 3.2, 3]);   // sol 2
    translate([  105, -0.1, 50.5]) cube([5, 3.2, 3]);   // sag 1
    translate([  105, -0.1, 56.6]) cube([5, 3.2, 3]);   // sag 2
    // ic gecis deliği — kol + panel boyunca
    translate([55, -10.1, 55]) rotate([-90, 0, 0]) cylinder(r=25, h=13.2);
  }
}

panel_tunel();
